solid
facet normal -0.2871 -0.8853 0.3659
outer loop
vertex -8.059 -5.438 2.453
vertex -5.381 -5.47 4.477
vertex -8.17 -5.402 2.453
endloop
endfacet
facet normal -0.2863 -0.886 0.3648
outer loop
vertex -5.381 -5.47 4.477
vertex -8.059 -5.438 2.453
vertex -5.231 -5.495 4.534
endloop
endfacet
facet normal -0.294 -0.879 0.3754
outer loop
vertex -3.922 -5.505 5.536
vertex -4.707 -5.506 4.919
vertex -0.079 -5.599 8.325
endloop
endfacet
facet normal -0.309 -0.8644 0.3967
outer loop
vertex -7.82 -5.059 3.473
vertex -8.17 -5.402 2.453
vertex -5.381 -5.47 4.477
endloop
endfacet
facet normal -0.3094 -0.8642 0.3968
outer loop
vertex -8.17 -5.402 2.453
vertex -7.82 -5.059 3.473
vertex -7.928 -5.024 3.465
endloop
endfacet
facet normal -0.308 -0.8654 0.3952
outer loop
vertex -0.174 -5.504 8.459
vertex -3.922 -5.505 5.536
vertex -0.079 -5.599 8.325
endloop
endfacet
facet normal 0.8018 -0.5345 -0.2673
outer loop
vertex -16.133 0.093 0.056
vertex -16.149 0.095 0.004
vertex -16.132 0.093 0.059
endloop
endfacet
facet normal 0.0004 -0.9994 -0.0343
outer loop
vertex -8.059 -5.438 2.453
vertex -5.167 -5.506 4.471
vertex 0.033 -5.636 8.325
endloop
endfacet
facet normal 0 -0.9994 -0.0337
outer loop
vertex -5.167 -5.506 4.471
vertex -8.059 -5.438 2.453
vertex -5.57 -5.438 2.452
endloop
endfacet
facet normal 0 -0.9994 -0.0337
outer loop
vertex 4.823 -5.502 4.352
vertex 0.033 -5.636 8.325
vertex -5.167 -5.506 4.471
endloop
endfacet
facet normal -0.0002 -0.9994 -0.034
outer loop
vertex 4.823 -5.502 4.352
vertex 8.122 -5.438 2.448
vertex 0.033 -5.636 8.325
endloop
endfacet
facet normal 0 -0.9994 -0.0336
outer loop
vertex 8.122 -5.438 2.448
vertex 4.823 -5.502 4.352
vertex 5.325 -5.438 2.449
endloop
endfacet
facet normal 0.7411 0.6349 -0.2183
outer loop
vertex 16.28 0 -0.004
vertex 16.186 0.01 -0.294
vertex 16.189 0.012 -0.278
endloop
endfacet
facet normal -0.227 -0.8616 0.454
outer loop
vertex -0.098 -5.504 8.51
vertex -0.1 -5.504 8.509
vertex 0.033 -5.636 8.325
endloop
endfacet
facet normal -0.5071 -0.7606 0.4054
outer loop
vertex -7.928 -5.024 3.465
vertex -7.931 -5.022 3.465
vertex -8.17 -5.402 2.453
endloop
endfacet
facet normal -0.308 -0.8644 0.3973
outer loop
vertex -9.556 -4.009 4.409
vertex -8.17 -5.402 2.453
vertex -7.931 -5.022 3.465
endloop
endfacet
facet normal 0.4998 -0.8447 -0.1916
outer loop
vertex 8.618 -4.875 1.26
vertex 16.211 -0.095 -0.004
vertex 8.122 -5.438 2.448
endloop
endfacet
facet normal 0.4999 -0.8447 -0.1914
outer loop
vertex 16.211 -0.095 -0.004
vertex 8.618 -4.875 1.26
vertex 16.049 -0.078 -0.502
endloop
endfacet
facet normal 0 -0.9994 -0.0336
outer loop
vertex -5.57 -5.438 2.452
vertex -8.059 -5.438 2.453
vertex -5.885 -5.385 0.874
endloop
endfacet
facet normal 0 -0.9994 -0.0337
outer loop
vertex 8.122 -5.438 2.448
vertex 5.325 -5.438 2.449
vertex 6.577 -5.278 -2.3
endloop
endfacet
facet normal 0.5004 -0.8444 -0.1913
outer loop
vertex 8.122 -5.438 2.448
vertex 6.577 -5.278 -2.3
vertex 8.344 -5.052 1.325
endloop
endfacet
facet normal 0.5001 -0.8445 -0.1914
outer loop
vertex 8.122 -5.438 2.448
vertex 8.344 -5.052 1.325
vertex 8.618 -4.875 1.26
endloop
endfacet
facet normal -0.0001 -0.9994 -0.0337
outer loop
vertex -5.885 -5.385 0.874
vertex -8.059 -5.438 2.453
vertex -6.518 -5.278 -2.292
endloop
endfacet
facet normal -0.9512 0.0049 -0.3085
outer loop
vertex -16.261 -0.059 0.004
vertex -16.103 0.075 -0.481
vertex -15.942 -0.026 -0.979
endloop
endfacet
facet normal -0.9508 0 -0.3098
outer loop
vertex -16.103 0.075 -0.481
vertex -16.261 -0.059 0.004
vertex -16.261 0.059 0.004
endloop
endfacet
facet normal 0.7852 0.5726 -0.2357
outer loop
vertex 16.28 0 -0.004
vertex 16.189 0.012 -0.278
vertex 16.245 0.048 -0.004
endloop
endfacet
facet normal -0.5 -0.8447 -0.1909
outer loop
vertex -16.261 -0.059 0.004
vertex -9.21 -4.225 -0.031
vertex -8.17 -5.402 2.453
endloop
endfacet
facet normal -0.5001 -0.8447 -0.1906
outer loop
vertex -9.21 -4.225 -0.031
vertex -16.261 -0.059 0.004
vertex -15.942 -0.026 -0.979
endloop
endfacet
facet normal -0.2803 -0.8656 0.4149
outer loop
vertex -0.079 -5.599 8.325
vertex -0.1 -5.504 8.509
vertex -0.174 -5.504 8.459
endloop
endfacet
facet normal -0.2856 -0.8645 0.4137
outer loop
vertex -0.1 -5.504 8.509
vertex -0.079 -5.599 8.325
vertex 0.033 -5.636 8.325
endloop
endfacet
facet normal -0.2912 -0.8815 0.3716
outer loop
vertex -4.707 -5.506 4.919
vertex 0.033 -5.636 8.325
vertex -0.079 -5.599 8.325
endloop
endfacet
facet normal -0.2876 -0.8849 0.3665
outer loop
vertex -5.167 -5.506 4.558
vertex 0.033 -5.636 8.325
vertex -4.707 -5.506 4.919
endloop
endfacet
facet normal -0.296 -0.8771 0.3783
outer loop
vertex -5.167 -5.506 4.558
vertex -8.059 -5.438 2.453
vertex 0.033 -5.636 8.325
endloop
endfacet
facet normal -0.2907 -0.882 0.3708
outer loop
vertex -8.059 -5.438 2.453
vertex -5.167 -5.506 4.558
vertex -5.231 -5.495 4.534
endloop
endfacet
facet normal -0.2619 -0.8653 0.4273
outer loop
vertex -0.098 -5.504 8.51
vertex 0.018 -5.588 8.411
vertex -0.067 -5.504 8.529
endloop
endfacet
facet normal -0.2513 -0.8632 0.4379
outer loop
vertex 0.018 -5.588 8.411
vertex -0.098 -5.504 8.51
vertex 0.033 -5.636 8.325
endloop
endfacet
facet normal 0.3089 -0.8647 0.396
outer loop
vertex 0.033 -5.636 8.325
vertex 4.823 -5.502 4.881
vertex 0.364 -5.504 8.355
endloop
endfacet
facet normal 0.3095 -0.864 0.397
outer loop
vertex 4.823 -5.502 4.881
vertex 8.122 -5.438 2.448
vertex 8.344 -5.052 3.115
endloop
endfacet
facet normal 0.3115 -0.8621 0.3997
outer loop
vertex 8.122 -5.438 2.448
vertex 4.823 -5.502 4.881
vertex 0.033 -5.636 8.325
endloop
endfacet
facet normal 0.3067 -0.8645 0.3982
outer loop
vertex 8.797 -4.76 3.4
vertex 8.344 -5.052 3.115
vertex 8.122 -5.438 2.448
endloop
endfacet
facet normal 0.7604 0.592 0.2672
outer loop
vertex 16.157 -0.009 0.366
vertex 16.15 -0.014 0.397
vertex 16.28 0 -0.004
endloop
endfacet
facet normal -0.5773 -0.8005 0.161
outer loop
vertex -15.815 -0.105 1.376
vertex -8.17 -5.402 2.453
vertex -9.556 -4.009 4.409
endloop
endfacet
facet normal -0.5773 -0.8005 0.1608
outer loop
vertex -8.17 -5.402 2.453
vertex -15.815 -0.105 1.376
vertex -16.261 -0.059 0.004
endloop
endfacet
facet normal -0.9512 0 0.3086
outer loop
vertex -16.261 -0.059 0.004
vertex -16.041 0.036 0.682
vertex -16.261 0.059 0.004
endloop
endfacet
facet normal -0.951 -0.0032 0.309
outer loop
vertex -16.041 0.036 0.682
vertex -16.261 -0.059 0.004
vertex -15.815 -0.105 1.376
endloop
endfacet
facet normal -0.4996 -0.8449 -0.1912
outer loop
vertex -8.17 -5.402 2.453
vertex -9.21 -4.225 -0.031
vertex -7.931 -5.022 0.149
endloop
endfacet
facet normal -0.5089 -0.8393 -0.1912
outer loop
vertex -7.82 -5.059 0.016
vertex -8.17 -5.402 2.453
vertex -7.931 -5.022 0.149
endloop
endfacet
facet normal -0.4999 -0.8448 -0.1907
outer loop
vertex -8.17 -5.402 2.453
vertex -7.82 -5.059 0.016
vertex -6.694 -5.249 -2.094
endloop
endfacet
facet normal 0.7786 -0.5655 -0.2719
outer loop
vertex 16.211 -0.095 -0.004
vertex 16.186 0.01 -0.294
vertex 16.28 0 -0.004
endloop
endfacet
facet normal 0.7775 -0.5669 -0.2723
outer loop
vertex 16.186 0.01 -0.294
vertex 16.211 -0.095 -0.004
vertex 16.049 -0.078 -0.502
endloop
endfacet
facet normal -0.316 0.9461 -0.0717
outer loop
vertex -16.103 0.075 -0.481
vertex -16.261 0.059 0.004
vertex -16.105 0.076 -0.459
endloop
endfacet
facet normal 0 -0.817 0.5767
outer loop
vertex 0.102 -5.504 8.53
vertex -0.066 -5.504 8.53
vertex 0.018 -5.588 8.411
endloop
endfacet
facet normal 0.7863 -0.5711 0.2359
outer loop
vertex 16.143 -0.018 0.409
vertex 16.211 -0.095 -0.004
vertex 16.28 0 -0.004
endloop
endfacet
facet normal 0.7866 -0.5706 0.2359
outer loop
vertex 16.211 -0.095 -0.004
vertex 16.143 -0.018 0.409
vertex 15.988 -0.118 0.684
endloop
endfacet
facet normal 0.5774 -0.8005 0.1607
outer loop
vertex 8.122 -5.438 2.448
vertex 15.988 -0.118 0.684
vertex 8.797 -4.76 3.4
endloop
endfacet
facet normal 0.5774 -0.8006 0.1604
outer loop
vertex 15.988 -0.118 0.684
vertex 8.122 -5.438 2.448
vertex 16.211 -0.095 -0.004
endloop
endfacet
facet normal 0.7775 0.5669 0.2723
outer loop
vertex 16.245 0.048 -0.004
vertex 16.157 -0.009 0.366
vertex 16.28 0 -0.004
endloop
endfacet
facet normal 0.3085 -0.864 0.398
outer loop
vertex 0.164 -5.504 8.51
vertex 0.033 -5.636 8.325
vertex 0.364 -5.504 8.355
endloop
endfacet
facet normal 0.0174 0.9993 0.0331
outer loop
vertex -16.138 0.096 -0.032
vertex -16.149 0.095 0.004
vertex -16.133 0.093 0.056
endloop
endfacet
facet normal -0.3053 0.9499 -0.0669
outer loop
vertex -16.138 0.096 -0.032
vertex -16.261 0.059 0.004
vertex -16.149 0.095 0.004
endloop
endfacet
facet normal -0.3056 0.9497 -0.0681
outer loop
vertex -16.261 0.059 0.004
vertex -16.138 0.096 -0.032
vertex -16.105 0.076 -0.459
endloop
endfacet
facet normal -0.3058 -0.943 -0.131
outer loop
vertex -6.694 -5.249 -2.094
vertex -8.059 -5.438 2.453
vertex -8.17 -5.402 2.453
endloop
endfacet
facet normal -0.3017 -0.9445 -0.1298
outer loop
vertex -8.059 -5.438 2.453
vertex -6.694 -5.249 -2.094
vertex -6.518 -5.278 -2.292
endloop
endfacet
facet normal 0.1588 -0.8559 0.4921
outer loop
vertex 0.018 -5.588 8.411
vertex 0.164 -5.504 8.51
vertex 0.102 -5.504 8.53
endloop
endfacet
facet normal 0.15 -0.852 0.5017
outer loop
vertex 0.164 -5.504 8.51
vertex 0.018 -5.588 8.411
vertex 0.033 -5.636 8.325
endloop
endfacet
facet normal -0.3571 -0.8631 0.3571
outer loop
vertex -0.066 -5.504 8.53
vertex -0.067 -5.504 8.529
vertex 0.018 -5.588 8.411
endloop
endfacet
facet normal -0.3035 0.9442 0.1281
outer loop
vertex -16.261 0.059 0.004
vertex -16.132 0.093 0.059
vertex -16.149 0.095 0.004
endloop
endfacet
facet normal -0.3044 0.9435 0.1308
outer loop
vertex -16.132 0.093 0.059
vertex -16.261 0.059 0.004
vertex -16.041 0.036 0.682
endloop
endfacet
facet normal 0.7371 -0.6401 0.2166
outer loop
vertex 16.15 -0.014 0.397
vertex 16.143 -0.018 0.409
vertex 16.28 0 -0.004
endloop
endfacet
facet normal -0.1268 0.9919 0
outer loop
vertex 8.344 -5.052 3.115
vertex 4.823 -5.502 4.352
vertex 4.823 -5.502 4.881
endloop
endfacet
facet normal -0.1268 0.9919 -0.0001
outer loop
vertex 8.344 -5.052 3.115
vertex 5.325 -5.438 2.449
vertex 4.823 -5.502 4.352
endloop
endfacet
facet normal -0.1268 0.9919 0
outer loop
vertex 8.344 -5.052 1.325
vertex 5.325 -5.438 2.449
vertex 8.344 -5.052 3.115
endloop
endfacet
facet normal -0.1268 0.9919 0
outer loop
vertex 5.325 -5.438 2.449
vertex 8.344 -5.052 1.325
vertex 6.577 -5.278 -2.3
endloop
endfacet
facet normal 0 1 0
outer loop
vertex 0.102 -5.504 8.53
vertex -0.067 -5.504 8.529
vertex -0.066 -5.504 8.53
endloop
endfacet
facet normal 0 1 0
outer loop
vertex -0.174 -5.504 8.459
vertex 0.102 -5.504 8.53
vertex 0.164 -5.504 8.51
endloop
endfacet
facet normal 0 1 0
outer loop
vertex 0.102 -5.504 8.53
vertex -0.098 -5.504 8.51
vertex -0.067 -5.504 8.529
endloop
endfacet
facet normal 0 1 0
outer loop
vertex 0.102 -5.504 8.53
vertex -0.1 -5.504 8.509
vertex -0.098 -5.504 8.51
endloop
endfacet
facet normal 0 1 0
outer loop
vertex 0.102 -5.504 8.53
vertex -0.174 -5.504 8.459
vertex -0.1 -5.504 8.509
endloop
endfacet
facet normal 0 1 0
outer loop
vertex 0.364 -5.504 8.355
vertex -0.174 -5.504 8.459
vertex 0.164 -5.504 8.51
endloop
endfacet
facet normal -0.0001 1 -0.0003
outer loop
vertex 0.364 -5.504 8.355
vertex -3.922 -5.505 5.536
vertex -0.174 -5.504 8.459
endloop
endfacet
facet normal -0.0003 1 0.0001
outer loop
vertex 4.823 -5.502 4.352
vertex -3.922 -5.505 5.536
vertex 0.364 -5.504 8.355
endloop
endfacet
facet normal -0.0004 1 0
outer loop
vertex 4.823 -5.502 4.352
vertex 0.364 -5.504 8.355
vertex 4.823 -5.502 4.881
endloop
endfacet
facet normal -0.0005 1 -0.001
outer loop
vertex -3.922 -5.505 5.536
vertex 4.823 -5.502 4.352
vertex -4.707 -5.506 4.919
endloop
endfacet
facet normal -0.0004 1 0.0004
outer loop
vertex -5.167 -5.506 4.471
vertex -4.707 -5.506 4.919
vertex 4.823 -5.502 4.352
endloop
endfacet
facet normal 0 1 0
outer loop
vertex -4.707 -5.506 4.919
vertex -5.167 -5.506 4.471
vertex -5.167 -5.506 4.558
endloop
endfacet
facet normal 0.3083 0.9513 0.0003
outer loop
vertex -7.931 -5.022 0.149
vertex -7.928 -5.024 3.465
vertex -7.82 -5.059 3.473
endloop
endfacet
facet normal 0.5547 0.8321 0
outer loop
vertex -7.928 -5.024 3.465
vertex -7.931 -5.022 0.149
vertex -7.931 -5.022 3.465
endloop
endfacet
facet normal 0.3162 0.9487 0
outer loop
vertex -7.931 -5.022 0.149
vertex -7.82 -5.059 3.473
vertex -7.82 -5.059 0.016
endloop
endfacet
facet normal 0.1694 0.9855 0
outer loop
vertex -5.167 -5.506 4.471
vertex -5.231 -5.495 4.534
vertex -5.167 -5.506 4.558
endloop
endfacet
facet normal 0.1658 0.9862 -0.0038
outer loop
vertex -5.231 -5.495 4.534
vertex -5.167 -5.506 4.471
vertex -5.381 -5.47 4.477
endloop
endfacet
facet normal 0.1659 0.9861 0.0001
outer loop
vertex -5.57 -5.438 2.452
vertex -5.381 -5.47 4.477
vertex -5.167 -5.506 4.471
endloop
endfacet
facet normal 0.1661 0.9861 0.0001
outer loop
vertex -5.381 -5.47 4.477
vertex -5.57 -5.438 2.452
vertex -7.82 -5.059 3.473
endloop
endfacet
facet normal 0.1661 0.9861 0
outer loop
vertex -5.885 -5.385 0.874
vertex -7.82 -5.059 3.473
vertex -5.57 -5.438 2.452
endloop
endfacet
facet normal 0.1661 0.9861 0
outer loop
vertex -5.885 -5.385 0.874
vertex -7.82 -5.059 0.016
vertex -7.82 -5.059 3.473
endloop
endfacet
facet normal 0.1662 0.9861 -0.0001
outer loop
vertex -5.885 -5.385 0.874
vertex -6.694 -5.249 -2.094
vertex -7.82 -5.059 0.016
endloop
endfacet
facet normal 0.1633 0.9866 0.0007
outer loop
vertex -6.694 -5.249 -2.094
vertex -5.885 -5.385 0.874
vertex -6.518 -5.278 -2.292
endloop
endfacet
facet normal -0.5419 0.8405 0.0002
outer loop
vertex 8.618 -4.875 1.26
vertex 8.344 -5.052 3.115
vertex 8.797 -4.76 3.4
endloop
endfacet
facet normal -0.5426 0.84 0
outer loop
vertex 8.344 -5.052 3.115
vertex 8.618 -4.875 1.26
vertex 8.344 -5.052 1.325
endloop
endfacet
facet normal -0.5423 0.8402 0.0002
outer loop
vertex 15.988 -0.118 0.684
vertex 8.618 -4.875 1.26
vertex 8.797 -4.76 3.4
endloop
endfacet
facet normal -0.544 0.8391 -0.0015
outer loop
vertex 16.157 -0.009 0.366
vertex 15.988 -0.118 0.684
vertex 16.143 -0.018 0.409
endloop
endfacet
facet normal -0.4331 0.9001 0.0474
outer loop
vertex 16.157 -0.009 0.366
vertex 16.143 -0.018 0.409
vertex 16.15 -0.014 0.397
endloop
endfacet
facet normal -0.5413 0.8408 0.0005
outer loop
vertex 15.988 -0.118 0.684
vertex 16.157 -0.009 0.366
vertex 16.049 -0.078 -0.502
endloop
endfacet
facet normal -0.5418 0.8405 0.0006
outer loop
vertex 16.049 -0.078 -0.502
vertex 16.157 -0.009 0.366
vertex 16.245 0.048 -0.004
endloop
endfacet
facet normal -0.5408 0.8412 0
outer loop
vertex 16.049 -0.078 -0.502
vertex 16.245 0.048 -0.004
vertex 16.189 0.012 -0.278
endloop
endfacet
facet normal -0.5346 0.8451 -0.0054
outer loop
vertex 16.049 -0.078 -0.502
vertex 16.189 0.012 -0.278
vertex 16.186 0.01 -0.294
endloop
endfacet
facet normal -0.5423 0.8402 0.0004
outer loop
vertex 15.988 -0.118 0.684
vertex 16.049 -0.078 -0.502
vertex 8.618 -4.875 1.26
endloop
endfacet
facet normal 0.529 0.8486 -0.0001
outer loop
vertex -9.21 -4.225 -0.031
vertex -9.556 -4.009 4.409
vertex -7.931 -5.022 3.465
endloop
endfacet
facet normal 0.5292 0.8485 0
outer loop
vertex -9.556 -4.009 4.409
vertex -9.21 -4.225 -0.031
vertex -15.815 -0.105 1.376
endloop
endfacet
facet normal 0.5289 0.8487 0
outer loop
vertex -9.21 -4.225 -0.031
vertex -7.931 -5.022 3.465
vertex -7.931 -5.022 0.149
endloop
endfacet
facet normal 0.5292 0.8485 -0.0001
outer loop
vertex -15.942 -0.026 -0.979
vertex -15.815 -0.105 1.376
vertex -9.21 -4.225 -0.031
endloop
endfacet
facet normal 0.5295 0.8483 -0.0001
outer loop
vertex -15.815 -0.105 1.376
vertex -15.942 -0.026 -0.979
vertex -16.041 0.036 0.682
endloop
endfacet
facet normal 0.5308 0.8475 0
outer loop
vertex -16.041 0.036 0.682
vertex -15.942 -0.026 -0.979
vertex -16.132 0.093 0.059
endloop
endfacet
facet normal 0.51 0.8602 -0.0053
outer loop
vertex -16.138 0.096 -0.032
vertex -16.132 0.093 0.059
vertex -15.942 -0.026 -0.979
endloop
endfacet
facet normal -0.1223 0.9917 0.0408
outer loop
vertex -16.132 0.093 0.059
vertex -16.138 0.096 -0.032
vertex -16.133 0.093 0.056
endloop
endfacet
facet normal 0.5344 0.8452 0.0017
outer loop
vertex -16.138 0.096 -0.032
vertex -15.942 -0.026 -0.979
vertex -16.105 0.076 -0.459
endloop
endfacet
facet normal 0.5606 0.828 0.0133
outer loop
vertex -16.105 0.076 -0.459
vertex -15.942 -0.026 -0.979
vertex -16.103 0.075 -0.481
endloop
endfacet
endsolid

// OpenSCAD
// Auto-generated OpenSCAD file

    inner_points = 10*[[-1.6065576544292892, 0.016072137049278255, -0.07392451573739472], [1.6261308566625277, 0.017340658440594285, 0.07392451573739472], [-1.341249269607953, -0.02863275383436257, 0.8892021289332714], [-1.2544774711527342, 0.061019293960932294, -1.0088145079982527], [1.2740506733859727, -0.027606498471059754, 1.0088145079982527], [1.3608224718411914, 0.06204554932423511, -0.8892021289332714], [-0.5598911021901387, -0.0560196298357948, 1.512683783220194], [-0.4194913830246398, 0.08904043065802253, -1.5583716465477804], [0.43906458525787834, -0.055627635168149996, 1.5583716465477804], [0.5794643044233774, 0.08943242532566734, -1.512683783220194], [-0.7850562096059552, -0.49636791351195547, -0.3240056440417419], [0.8312880459399532, -0.4957336528162974, -0.25008112830434714], [-0.5197478247846188, -0.5410728043955961, 0.6391210006289243], [0.4792078626633983, -0.5406808097279513, 0.6848088639565106], [0.04992987852213929, -0.4683467768148652, -0.87356278259127]];

    outer_points = 10*[[1.6180339268989221, 0.0, -0.00044738568277260886], [-1.6180339268989221, 0.0, 0.00044738568277260886], [1.3087541264448814, 0.031991353396446154, -0.950880212524824], [1.309279762228037, -0.031991353396446154, 0.9501563272840178], [-1.309279762228037, 0.031991353396446154, -0.9501563272840178], [-1.3087541264448814, -0.031991353396446154, 0.950880212524824], [0.49957473260557367, 0.051763097141559244, -1.5381091174121158], [0.5004252291684228, -0.051763097141559244, 1.5378326178540822], [-0.5004252291684228, 0.051763097141559244, -1.5378326178540822], [-0.49957473260557367, -0.051763097141559244, 1.5381091174121158], [0.8090847148034257, -0.5342757895268477, 0.24480871103153803], [-0.8089492120954964, -0.5342757895268477, 0.24525609671431062], [0.499804914349385, -0.5022844361304015, -0.7056241158105132], [-0.5001950474246115, -0.5022844361304015, -0.7053476162524797], [0.0002301817438113309, -0.5540475332719608, 0.8324850016016027]];

    // Convex hull for inner set (I)
    module inner_hull() {
        hull() {
            for (p = inner_points) {
                translate(p) sphere(r=0.1);
            }
        }
    }

    // Convex hull for outer set (O) minus inner hull (O \ I)
    module outer_minus_inner() {
        difference() {
            hull() {
                for (p = outer_points) {
                    translate(p) sphere(r=0.1);
                }
            }
            inner_hull(); // Subtract inner hull
        }
    }

    // Convex hull for outer set (O) minus all translated inner hulls
    module outer_minus_AllTranslationInner() {
        difference() {
            hull() {
                for (p = outer_points) {
                    translate(p) sphere(r=0.1);
                }
            }
            hull() {
                translate([0,0,50]) inner_hull();
                translate([0,0,-50]) inner_hull();
            }; // Subtract translated inner hulls
        }
    }

    // Difference between outer_minus_inner and outer_minus_AllTranslationInner
    module outer_minus_inner_diff() {
        difference() {
            // Outer minus inner
            difference() {
                hull() {
                    for (p = outer_points) {
                        translate(p) sphere(r=0.1);
                    }
                }
                inner_hull();
            }

            // Subtract Outer minus AllTranslationInner
            difference() {
                hull() {
                    for (p = outer_points) {
                        translate(p) sphere(r=0.1);
                    }
                }
                hull() {
                    translate([0,0,50]) inner_hull();
                    translate([0,0,-50]) inner_hull();
                };
            }
        }
    }

    // Rendering all with colors applied
    color([0, 1, 0, 1]) outer_minus_AllTranslationInner(); // Opaque green
    
